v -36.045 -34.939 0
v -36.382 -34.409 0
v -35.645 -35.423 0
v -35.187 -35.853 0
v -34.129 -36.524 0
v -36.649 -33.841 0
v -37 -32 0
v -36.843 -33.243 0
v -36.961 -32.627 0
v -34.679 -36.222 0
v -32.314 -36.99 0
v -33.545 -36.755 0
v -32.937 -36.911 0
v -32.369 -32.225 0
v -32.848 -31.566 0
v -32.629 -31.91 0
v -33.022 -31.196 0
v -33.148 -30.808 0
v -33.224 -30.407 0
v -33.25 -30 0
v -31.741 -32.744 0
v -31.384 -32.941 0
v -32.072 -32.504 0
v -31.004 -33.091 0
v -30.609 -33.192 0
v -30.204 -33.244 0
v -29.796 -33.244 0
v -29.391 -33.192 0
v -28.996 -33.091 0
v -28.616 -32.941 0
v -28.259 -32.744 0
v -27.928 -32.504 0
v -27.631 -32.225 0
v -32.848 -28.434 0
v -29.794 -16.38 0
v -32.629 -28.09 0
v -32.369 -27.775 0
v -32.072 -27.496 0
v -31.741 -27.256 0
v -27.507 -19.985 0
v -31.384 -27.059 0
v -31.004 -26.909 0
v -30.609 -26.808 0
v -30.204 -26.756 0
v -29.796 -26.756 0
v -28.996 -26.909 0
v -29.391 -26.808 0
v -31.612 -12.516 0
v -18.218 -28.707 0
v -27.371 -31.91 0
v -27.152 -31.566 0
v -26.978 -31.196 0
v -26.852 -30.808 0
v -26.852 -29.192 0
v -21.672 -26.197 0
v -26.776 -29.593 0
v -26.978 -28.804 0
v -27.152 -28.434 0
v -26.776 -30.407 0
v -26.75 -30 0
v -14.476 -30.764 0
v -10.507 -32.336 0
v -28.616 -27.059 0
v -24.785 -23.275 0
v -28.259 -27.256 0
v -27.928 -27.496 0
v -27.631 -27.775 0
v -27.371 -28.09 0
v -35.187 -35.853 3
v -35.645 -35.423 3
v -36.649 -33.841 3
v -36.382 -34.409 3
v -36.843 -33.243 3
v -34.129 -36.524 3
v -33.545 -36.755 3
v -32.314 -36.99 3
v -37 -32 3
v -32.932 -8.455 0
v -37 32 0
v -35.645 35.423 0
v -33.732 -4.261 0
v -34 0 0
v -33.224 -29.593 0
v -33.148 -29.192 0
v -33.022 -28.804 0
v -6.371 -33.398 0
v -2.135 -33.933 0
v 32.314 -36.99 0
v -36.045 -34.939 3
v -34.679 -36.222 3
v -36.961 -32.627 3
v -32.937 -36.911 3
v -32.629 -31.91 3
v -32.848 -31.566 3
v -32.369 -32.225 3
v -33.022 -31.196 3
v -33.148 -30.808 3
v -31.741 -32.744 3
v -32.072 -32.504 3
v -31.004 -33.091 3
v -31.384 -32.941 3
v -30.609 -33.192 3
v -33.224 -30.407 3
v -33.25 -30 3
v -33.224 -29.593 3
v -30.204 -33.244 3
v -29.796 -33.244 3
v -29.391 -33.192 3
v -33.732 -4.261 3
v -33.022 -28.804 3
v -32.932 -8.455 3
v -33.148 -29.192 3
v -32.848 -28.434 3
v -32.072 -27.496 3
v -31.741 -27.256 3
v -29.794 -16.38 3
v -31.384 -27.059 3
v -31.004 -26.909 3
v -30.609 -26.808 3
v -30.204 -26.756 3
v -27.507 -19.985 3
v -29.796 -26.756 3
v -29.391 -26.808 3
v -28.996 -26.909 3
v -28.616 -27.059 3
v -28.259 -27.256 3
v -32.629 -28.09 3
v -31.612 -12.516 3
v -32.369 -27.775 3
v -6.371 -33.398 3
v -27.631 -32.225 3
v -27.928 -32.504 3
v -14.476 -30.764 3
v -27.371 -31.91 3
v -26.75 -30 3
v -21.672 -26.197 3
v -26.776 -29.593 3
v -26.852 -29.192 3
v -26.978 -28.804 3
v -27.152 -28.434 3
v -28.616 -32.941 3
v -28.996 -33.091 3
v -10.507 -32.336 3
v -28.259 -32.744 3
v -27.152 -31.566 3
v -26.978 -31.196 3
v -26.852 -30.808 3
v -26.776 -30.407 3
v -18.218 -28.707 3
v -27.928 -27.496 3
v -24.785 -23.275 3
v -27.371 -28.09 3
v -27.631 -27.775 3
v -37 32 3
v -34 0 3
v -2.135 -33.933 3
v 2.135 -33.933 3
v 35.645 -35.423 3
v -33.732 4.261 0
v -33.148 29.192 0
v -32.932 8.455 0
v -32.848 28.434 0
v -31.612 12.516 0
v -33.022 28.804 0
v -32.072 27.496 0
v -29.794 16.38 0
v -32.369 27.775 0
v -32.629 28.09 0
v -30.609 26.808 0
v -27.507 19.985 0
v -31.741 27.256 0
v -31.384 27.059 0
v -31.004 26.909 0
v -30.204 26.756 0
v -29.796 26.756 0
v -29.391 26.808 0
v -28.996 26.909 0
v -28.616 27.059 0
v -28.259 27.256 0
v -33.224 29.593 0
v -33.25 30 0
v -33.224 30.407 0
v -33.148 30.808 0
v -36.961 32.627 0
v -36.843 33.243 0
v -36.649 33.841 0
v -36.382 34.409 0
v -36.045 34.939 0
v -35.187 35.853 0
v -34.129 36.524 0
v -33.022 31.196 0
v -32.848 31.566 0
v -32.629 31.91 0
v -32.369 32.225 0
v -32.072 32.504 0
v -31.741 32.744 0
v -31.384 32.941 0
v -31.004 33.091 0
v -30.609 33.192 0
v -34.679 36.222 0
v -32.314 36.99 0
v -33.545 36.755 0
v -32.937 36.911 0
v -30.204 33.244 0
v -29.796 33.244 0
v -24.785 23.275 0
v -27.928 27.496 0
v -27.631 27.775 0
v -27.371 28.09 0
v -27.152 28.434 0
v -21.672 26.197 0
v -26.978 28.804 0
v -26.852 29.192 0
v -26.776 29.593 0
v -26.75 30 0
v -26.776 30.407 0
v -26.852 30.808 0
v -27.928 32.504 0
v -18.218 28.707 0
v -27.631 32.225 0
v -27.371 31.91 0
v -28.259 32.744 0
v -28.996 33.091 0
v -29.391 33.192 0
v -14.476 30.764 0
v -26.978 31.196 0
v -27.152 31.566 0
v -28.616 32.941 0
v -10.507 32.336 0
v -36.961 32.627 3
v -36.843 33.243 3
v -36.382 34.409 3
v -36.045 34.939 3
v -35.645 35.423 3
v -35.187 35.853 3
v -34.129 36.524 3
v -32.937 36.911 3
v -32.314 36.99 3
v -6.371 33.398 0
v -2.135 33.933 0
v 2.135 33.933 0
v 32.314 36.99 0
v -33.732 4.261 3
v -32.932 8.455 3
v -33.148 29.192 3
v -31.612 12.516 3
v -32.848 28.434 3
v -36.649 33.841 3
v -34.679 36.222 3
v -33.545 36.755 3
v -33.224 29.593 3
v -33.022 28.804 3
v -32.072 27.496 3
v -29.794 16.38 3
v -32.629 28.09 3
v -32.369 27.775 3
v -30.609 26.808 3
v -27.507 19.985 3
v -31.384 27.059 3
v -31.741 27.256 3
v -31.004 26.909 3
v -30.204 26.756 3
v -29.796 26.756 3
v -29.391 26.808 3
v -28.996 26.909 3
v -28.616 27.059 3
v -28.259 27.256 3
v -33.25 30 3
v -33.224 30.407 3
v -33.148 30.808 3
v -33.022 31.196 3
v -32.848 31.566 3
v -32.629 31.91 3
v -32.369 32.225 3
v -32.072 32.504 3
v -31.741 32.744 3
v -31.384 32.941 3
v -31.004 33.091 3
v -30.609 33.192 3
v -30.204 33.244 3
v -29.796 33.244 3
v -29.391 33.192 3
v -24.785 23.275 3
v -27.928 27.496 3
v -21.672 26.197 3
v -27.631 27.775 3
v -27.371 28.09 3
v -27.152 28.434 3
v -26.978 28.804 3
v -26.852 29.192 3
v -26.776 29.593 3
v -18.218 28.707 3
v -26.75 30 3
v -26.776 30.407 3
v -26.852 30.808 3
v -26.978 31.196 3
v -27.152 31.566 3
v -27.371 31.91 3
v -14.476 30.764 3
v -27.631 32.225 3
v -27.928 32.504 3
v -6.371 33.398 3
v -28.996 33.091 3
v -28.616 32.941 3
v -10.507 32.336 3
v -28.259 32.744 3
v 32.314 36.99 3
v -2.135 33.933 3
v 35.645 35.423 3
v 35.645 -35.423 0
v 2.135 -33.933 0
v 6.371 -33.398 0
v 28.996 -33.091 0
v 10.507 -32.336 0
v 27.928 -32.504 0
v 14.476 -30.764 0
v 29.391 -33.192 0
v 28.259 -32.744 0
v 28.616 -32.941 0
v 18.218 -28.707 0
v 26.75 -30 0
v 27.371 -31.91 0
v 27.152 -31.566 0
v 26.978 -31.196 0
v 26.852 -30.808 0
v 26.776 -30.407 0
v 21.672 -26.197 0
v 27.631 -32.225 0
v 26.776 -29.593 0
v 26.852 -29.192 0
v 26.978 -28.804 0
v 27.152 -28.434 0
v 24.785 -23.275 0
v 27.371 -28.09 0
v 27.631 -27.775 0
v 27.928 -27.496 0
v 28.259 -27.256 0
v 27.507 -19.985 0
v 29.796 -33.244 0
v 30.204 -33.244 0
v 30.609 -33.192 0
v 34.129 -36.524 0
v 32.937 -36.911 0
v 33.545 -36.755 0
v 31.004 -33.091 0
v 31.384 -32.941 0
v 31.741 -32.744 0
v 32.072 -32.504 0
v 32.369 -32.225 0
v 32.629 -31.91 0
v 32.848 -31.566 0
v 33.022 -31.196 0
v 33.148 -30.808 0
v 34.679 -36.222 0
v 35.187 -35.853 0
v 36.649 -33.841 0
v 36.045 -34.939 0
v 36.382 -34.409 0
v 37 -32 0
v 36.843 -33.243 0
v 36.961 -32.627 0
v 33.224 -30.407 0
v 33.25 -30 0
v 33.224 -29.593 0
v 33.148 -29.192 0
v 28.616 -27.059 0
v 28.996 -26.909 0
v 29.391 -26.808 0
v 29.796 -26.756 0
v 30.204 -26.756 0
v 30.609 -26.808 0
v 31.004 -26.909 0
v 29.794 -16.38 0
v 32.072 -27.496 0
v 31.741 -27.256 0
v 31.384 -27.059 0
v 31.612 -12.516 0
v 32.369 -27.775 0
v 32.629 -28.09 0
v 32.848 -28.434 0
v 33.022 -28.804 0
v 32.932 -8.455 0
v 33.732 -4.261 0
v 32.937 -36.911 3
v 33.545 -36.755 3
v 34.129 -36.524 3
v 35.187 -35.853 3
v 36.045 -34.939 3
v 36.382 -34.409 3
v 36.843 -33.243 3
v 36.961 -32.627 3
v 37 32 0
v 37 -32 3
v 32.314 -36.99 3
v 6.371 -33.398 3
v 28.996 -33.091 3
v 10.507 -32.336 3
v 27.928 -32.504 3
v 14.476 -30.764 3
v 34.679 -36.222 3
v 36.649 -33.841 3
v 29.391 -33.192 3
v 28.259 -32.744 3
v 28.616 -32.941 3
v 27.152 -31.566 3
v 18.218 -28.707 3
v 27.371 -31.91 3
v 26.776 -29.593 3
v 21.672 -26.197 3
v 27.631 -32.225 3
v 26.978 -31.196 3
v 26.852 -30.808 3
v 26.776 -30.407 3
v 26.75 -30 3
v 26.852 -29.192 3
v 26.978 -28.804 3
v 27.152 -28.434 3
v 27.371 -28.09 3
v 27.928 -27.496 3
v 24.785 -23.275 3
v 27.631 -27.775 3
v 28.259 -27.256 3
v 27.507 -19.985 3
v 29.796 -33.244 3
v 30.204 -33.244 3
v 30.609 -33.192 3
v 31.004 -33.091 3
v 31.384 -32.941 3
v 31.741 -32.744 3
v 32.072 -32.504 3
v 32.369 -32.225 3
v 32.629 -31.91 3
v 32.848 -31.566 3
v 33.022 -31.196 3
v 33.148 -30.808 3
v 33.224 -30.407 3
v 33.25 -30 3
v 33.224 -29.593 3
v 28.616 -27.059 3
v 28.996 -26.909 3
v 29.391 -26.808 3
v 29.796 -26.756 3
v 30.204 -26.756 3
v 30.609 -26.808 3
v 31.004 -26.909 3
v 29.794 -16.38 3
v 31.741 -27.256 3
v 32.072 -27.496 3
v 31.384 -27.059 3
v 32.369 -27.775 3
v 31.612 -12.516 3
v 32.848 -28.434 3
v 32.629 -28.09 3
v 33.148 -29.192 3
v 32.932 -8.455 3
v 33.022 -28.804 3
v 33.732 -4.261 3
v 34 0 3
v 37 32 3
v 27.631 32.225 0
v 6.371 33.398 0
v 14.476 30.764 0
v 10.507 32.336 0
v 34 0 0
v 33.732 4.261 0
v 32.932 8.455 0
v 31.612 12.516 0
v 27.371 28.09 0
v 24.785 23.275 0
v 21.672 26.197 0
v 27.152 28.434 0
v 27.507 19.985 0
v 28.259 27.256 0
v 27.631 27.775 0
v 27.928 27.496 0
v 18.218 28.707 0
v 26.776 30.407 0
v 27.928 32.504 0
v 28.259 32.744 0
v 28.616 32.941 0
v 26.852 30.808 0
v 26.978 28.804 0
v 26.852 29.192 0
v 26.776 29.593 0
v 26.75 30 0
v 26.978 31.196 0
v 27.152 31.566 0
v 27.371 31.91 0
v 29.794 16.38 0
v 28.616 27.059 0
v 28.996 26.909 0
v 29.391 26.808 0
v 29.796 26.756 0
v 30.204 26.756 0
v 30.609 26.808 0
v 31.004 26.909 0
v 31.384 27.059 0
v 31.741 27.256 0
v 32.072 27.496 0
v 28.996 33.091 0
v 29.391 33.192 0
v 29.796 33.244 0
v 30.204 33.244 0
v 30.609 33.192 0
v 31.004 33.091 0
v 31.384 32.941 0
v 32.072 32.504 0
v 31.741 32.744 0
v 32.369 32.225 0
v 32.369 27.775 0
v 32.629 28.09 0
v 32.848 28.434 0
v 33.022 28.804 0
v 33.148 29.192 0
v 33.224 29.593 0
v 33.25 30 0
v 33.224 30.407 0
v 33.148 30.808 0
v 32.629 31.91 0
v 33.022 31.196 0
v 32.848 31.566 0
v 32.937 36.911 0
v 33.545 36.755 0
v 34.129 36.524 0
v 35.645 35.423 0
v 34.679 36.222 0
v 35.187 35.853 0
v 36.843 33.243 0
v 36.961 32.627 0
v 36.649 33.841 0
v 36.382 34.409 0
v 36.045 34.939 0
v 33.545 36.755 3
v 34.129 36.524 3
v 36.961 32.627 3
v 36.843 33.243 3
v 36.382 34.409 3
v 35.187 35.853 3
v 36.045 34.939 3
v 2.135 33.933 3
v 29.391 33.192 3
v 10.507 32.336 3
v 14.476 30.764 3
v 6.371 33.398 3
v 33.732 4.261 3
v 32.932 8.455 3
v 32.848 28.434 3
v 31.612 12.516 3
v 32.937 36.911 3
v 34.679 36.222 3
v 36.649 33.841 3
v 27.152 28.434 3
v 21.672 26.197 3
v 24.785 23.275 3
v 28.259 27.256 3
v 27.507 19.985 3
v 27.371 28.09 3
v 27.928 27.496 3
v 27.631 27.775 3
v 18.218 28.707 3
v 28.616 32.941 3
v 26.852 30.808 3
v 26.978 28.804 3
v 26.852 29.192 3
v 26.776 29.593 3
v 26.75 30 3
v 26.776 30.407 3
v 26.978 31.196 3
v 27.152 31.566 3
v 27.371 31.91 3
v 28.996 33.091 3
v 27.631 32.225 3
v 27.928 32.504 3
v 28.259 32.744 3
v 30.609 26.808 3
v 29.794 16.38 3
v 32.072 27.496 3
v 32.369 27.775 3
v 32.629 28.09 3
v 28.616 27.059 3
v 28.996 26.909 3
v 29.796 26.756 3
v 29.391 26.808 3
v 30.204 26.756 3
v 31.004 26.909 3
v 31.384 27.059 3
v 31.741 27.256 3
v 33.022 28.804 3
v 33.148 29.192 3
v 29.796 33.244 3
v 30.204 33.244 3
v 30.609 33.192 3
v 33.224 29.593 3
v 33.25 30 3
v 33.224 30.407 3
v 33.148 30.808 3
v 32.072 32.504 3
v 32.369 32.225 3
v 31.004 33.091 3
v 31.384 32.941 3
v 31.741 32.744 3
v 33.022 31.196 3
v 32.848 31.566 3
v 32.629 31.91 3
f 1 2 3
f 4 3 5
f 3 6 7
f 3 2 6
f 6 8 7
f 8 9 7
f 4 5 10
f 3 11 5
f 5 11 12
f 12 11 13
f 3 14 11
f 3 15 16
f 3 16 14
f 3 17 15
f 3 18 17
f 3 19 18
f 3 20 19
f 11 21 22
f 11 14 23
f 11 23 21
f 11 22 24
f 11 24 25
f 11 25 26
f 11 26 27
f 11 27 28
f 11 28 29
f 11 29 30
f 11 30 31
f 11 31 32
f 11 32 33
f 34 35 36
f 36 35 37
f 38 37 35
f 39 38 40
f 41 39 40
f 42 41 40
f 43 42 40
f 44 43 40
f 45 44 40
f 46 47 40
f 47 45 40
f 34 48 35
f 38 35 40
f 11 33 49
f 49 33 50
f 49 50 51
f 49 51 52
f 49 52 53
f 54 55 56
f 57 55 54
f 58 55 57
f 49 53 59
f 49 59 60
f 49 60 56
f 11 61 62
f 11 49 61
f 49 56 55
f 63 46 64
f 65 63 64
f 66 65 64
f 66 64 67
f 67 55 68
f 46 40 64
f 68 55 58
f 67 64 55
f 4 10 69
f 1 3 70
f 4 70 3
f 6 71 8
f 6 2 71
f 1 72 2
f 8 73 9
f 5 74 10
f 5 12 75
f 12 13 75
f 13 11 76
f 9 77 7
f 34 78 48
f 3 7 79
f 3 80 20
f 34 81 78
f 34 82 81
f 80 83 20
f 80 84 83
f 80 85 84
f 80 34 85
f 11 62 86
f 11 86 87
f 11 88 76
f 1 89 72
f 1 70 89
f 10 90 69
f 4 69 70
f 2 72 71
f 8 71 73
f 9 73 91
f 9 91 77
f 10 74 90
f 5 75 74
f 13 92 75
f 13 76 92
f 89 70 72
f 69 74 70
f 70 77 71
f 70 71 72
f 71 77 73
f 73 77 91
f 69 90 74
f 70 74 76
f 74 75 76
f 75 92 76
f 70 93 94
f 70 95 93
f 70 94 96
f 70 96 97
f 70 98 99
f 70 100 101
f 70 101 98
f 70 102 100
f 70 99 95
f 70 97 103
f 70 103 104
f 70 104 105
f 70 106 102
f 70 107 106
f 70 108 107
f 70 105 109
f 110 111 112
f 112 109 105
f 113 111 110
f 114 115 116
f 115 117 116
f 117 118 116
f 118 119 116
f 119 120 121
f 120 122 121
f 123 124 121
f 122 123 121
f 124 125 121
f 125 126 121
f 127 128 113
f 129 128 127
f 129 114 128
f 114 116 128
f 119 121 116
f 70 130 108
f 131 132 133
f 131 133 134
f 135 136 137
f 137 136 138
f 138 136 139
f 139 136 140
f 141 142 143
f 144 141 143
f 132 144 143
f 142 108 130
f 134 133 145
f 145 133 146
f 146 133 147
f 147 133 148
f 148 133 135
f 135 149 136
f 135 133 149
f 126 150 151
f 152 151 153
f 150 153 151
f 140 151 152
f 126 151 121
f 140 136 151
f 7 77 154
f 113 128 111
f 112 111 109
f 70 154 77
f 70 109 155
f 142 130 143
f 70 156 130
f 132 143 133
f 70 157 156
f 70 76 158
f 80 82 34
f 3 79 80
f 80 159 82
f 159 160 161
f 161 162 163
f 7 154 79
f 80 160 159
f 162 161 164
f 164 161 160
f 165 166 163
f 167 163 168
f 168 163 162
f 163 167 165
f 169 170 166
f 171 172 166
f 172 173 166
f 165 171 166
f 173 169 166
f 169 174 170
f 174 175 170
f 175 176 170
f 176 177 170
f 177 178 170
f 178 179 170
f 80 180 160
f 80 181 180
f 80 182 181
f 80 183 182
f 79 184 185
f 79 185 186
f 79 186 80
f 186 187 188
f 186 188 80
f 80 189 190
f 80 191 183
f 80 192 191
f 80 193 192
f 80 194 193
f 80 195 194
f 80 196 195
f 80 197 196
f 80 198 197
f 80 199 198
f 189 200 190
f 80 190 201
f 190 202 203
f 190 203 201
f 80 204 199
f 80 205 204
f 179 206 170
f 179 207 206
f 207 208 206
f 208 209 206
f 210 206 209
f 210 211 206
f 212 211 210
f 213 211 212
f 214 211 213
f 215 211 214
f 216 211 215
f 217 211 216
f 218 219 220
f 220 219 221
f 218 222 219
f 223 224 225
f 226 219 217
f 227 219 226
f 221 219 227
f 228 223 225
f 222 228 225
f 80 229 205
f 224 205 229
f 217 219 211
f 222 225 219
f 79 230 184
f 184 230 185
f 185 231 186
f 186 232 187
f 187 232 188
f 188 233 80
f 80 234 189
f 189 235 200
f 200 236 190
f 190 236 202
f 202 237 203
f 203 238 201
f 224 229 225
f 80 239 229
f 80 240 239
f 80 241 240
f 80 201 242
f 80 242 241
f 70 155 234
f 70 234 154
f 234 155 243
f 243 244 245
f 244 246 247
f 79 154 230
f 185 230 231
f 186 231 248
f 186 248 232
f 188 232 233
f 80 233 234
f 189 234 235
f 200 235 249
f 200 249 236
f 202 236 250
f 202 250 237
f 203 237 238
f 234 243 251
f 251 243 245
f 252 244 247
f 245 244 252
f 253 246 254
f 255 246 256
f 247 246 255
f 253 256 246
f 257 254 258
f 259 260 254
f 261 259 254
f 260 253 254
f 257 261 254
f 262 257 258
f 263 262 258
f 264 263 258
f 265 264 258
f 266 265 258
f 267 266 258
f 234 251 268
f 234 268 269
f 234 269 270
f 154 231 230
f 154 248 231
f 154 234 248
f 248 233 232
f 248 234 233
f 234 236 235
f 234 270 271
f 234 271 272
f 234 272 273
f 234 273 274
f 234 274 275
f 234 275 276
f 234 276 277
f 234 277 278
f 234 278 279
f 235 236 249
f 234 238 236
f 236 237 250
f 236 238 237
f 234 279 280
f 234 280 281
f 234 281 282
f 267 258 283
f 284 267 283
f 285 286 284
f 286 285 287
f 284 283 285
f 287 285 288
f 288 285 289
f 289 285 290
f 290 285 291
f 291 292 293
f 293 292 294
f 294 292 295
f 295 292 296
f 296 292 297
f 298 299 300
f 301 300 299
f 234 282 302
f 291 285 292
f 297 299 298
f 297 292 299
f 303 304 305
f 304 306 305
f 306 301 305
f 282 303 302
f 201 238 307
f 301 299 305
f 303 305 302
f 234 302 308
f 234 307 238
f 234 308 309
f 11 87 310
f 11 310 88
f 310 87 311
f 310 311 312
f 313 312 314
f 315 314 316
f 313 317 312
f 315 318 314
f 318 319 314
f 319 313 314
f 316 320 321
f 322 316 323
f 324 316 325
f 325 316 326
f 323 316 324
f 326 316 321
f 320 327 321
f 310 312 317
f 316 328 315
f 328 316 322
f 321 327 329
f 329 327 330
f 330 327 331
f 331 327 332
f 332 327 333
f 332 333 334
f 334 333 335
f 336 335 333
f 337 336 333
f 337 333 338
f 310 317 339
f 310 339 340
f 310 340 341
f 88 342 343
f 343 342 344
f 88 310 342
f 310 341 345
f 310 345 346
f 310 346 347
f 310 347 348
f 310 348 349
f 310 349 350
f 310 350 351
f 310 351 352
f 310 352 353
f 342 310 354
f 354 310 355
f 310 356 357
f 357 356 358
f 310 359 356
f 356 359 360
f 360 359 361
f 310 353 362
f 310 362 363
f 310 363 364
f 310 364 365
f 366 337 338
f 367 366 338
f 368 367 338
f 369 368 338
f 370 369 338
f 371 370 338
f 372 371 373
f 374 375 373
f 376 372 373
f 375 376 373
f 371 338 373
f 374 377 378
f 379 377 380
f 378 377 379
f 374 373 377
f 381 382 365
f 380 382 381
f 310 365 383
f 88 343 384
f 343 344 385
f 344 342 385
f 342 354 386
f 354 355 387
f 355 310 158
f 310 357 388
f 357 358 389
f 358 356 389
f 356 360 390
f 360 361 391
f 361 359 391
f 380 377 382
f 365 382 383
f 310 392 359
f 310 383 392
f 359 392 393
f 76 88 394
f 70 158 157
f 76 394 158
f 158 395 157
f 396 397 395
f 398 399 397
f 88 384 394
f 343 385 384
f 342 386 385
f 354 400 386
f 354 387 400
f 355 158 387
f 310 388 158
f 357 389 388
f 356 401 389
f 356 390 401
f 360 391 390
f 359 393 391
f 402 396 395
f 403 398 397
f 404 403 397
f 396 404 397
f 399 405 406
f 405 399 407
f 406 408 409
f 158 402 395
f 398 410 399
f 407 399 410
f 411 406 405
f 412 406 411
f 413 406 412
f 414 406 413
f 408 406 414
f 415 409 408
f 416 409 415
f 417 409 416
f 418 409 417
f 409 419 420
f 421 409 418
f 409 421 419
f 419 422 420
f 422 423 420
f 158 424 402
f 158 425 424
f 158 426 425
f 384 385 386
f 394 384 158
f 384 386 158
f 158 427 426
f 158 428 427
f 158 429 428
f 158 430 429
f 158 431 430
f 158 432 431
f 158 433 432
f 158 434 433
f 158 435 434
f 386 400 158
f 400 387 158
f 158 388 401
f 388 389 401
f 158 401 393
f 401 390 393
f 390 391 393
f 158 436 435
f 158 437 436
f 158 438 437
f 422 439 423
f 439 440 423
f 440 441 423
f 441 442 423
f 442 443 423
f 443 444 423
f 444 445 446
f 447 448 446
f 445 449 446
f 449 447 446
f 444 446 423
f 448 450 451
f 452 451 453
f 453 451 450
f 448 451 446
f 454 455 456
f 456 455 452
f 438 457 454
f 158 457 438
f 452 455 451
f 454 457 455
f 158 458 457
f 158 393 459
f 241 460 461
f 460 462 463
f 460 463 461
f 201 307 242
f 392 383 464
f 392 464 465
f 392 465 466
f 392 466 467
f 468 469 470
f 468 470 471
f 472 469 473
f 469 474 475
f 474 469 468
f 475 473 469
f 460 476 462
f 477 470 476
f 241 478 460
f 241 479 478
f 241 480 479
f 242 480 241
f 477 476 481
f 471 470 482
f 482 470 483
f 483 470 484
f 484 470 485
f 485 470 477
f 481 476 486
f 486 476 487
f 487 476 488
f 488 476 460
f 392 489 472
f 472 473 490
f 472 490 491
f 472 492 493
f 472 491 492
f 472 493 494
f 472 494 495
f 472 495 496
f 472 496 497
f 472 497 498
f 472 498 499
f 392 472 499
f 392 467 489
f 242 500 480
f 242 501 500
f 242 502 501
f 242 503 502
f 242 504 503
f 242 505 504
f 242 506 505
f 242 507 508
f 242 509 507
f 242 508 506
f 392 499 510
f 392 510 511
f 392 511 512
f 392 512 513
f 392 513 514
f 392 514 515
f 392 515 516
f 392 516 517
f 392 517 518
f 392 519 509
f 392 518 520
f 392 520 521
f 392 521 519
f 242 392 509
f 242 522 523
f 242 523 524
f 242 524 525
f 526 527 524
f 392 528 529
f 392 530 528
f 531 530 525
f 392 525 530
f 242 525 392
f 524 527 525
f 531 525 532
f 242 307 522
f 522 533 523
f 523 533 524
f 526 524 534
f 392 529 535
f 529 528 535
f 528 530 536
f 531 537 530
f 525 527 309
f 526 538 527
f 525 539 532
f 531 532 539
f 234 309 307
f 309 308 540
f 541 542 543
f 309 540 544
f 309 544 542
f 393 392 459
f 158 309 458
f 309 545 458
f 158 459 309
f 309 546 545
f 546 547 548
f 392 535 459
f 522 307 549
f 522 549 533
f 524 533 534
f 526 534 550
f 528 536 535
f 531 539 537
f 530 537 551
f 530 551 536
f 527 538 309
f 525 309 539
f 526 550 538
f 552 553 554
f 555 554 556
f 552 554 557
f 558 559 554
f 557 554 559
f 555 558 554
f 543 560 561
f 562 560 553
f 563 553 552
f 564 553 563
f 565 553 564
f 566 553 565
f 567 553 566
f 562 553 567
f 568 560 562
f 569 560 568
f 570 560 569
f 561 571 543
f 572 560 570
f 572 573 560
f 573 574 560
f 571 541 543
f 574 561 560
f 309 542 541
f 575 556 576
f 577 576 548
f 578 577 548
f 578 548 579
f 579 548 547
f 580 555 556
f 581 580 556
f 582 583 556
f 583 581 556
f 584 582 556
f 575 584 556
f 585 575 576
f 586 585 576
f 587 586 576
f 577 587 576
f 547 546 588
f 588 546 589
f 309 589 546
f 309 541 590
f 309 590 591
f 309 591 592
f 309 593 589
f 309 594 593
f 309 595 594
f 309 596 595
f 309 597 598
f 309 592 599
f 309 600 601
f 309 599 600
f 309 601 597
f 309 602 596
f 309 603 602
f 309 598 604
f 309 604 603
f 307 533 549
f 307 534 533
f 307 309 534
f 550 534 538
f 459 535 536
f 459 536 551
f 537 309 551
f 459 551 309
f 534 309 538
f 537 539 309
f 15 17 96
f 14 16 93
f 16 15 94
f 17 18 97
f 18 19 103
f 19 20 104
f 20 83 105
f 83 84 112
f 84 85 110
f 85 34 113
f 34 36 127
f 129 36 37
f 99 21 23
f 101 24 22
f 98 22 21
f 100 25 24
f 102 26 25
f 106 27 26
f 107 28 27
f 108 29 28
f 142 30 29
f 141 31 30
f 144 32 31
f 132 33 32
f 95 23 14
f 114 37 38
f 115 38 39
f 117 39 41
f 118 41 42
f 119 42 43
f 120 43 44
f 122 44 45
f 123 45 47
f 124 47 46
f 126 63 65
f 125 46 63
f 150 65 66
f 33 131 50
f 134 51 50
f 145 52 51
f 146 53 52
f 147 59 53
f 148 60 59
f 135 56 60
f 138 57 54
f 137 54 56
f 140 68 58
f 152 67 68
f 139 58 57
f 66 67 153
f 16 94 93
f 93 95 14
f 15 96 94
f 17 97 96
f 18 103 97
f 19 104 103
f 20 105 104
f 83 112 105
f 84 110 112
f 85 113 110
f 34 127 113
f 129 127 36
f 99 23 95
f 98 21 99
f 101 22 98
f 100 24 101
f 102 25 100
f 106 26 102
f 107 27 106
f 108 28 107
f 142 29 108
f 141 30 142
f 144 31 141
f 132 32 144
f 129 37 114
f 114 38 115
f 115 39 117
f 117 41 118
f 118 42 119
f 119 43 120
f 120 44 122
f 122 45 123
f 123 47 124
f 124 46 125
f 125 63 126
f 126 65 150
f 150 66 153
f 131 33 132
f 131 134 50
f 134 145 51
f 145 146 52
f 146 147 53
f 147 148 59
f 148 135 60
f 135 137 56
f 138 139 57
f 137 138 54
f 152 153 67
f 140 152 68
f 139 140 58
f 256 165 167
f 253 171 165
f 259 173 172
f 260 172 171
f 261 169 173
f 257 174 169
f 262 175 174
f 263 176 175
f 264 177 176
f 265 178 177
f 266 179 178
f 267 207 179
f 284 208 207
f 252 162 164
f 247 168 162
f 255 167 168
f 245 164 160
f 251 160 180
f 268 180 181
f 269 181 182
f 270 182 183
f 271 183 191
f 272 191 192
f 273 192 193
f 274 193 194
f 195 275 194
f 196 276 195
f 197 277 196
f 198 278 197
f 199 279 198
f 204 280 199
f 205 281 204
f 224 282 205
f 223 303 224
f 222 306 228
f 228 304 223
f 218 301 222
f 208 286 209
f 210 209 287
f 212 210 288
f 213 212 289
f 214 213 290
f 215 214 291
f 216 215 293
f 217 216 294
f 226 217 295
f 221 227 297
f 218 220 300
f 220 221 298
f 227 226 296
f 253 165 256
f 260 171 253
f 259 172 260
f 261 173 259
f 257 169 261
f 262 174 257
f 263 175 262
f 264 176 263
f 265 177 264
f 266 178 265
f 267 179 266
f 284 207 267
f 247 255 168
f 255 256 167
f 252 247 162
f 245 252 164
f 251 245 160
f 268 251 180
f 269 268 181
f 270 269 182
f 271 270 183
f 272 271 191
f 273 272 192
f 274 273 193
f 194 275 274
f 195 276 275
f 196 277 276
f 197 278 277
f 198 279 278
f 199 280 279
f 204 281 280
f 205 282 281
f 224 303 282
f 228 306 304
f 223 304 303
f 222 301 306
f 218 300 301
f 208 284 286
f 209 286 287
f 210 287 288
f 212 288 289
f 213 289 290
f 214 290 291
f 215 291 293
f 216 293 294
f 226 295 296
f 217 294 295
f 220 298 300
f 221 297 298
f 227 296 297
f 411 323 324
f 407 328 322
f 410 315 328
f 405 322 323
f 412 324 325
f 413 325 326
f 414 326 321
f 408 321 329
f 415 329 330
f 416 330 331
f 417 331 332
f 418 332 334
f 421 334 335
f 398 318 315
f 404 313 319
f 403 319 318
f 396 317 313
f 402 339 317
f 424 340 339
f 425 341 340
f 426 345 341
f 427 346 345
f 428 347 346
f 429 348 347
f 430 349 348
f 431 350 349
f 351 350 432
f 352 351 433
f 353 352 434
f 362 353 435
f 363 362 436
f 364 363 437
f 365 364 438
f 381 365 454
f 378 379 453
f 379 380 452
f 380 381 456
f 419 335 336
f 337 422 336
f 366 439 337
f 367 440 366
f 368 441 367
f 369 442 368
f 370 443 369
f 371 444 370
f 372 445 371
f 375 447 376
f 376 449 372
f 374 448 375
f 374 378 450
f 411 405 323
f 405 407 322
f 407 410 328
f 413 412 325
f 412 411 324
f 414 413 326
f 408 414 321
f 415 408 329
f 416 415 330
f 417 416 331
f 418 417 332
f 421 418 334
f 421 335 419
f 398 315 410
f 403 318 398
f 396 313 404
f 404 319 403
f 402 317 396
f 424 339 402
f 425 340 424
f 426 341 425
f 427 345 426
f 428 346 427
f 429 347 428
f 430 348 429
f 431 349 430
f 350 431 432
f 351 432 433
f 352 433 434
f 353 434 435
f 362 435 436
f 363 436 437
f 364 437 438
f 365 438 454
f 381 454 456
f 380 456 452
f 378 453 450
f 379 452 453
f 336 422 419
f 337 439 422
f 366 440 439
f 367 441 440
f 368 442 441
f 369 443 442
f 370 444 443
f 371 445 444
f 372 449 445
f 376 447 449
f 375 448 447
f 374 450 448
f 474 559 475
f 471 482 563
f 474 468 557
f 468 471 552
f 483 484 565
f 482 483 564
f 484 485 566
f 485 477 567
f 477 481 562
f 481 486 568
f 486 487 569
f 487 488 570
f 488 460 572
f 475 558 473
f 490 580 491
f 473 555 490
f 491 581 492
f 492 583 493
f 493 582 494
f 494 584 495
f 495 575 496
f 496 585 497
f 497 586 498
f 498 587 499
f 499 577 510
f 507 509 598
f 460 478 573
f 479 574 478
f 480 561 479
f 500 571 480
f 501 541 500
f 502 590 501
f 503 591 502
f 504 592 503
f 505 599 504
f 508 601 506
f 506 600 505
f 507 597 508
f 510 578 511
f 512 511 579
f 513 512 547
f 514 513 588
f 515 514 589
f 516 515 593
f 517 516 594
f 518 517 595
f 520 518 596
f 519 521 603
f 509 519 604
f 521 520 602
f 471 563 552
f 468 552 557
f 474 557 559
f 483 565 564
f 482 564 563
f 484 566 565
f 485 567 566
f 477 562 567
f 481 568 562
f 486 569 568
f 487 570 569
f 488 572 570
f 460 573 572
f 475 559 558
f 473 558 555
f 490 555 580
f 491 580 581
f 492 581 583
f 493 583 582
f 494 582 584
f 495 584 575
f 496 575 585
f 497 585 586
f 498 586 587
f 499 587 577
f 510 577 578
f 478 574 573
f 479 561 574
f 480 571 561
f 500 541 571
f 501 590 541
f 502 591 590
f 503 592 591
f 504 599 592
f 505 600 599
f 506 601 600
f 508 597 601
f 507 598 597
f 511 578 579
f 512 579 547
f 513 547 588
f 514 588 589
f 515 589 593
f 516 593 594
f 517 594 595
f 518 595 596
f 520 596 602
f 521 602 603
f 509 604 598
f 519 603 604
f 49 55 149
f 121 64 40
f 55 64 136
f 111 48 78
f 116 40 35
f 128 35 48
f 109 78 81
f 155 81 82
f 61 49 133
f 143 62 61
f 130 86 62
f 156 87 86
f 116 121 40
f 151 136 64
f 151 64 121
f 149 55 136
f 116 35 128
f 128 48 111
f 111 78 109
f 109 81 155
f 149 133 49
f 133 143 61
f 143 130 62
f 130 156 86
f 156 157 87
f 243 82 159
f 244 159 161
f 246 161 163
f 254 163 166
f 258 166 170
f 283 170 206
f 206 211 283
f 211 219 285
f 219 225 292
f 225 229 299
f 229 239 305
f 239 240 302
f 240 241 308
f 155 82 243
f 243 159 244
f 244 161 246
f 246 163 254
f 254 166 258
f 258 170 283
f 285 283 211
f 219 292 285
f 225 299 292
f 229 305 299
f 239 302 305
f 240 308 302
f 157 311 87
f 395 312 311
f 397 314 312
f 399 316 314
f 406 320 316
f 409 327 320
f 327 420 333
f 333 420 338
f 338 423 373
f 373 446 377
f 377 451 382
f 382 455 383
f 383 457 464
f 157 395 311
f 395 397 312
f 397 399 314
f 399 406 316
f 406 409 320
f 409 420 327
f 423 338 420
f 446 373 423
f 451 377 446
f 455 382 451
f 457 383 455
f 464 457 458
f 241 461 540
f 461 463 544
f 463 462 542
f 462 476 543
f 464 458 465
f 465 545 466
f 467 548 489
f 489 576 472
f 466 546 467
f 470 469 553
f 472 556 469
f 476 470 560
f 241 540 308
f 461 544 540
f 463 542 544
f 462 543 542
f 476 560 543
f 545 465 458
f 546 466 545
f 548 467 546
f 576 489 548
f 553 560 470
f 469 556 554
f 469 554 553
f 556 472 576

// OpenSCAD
$fn = 50;

difference() {
	union() {
		hull() {
			translate(v = [-32.0, 32.0, 0]) {
				cylinder(h = 3, r = 5);
			}
			translate(v = [32.0, 32.0, 0]) {
				cylinder(h = 3, r = 5);
			}
			translate(v = [-32.0, -32.0, 0]) {
				cylinder(h = 3, r = 5);
			}
			translate(v = [32.0, -32.0, 0]) {
				cylinder(h = 3, r = 5);
			}
		}
	}
	union() {
		translate(v = [-30.0, -30.0, -100.0]) {
			cylinder(h = 200, r = 3.25);
		}
		translate(v = [-30.0, 30.0, -100.0]) {
			cylinder(h = 200, r = 3.25);
		}
		translate(v = [30.0, -30.0, -100.0]) {
			cylinder(h = 200, r = 3.25);
		}
		translate(v = [30.0, 30.0, -100.0]) {
			cylinder(h = 200, r = 3.25);
		}
		translate(v = [-30.0, -30.0, -100.0]) {
			cylinder(h = 200, r = 1.8);
		}
		translate(v = [-30.0, 30.0, -100.0]) {
			cylinder(h = 200, r = 1.8);
		}
		translate(v = [30.0, -30.0, -100.0]) {
			cylinder(h = 200, r = 1.8);
		}
		translate(v = [30.0, 30.0, -100.0]) {
			cylinder(h = 200, r = 1.8);
		}
		cylinder(h = 3, r = 34.0);
	}
}
